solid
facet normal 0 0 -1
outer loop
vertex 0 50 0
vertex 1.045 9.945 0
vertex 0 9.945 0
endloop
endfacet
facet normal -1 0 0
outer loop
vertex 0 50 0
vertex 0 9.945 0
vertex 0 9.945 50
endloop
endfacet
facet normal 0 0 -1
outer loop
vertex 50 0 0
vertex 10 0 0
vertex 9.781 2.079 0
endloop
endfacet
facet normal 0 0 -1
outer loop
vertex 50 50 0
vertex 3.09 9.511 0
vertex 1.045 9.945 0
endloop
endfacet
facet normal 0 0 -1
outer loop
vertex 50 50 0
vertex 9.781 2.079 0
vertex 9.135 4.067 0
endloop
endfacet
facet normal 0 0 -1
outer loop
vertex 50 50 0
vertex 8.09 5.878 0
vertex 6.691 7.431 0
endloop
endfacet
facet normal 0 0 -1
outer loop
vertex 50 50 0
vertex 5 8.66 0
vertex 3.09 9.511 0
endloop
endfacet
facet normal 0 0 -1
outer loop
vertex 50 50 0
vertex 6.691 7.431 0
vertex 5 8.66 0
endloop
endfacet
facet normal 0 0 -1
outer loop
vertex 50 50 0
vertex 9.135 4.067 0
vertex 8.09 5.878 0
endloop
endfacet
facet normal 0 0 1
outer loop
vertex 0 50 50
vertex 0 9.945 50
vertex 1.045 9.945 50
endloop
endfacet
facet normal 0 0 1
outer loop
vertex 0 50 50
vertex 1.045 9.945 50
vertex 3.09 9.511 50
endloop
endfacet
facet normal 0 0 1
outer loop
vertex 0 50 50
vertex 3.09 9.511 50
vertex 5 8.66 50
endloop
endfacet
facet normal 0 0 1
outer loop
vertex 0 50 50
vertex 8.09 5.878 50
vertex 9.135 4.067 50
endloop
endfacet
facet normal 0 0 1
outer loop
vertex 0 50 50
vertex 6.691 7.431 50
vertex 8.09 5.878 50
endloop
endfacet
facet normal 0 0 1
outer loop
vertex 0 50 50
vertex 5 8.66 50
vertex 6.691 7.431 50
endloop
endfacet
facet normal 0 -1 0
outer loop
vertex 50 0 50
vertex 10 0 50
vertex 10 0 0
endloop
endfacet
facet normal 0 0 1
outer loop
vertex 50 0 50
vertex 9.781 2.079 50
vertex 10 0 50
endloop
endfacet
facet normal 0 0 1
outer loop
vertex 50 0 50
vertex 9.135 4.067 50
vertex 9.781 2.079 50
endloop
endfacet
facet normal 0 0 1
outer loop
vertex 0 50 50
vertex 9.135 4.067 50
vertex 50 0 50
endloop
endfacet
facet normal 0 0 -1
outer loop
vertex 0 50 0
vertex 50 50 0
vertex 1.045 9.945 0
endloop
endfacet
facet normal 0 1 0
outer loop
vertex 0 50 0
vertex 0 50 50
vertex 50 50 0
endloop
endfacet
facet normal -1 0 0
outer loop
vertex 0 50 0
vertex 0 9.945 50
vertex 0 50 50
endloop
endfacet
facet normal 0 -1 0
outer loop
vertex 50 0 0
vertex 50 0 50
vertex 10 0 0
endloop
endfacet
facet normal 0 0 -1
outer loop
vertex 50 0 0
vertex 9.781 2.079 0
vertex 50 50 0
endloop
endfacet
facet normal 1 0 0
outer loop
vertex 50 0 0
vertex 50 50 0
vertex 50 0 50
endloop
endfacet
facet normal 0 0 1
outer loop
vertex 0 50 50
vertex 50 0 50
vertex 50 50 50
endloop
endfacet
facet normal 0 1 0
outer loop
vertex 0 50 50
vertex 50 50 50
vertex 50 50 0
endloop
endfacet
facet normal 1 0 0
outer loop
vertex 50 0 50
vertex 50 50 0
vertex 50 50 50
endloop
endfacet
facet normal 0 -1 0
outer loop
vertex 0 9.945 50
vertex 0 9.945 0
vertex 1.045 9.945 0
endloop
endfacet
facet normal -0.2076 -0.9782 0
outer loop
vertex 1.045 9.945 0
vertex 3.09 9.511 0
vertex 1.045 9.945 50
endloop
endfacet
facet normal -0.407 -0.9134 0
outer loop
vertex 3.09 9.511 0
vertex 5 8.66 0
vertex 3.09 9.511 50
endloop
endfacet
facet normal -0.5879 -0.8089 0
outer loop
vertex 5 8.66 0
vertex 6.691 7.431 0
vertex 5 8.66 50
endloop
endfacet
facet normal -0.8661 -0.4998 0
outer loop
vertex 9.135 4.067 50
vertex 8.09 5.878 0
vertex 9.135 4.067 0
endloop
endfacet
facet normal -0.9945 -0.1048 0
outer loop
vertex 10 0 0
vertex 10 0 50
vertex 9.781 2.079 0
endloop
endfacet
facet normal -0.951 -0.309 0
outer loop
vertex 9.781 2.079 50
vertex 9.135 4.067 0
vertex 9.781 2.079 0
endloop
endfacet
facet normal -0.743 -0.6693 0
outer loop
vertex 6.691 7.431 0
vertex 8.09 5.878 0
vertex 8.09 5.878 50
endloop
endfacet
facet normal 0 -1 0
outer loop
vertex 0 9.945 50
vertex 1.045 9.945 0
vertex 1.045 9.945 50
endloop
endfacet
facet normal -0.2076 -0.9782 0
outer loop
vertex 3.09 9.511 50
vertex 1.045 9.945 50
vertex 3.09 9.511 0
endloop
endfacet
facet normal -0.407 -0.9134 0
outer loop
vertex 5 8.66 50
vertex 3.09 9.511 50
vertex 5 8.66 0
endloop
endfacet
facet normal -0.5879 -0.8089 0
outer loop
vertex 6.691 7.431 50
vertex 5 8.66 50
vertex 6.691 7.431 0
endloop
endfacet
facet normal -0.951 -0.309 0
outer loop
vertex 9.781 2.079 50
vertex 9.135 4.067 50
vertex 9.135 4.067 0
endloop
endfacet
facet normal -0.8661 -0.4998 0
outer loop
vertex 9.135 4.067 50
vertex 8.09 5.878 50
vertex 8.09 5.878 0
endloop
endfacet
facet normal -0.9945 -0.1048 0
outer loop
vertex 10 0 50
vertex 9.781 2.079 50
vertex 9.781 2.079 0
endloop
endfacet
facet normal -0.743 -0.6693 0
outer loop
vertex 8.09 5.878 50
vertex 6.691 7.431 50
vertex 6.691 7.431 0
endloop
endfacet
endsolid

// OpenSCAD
difference() {
    // 外側の立方体 (50mm x 50mm x 50mm)
    cube([50, 50, 50]);

    // 中央に開ける貫通穴（円柱）を引く
    // 直径20mm -> 半径10mm。高さは立方体と同じ50mmで、Z軸方向に贯通させる。
    translate([0, 0, 0]) {
        cylinder(r=10, h=50);
    }
}
